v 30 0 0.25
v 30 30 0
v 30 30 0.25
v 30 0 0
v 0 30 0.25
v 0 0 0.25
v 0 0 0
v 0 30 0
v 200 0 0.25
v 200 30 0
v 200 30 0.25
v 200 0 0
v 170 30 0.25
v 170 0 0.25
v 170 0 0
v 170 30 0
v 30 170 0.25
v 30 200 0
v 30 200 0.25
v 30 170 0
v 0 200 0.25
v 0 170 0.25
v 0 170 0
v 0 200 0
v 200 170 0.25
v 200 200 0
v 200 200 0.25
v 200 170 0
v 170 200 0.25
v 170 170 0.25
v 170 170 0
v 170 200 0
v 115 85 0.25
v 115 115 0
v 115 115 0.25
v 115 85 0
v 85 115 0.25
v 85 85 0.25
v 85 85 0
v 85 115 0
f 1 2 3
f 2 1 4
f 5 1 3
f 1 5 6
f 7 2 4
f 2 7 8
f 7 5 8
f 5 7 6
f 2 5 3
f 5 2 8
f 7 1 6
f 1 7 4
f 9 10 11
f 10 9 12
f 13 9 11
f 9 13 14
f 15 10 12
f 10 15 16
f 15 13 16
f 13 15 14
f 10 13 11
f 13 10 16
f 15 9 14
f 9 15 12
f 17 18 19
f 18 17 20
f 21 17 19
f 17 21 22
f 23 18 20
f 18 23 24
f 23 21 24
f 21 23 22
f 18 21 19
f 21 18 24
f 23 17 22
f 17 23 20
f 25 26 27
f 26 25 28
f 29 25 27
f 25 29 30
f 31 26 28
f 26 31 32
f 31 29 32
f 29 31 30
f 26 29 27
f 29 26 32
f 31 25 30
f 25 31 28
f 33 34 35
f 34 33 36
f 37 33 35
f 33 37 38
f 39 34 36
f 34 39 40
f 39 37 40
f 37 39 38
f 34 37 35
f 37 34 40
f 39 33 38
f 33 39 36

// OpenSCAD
// Kalibrierung 1 – Haftung/Bettnivellierung: fünf Felder 30×30 mm, eine Schicht (0,25 mm) (Ecken + Mitte) auf 200×200 mm.
// Einfarbig, eine Schicht. Nach dem Druck: Felder ablösen und vergleichen (siehe LIESMICH.md).
feld = 30; flaeche = 200; dicke = 0.25;   // = genau eine Erstschicht im Profil „0.20mm Standard @FF C5“ (0,25 mm)
for (p = [[0,0], [flaeche-feld,0], [0,flaeche-feld], [flaeche-feld,flaeche-feld], [(flaeche-feld)/2,(flaeche-feld)/2]])
  translate([p[0], p[1], 0]) cube([feld, feld, dicke]);
